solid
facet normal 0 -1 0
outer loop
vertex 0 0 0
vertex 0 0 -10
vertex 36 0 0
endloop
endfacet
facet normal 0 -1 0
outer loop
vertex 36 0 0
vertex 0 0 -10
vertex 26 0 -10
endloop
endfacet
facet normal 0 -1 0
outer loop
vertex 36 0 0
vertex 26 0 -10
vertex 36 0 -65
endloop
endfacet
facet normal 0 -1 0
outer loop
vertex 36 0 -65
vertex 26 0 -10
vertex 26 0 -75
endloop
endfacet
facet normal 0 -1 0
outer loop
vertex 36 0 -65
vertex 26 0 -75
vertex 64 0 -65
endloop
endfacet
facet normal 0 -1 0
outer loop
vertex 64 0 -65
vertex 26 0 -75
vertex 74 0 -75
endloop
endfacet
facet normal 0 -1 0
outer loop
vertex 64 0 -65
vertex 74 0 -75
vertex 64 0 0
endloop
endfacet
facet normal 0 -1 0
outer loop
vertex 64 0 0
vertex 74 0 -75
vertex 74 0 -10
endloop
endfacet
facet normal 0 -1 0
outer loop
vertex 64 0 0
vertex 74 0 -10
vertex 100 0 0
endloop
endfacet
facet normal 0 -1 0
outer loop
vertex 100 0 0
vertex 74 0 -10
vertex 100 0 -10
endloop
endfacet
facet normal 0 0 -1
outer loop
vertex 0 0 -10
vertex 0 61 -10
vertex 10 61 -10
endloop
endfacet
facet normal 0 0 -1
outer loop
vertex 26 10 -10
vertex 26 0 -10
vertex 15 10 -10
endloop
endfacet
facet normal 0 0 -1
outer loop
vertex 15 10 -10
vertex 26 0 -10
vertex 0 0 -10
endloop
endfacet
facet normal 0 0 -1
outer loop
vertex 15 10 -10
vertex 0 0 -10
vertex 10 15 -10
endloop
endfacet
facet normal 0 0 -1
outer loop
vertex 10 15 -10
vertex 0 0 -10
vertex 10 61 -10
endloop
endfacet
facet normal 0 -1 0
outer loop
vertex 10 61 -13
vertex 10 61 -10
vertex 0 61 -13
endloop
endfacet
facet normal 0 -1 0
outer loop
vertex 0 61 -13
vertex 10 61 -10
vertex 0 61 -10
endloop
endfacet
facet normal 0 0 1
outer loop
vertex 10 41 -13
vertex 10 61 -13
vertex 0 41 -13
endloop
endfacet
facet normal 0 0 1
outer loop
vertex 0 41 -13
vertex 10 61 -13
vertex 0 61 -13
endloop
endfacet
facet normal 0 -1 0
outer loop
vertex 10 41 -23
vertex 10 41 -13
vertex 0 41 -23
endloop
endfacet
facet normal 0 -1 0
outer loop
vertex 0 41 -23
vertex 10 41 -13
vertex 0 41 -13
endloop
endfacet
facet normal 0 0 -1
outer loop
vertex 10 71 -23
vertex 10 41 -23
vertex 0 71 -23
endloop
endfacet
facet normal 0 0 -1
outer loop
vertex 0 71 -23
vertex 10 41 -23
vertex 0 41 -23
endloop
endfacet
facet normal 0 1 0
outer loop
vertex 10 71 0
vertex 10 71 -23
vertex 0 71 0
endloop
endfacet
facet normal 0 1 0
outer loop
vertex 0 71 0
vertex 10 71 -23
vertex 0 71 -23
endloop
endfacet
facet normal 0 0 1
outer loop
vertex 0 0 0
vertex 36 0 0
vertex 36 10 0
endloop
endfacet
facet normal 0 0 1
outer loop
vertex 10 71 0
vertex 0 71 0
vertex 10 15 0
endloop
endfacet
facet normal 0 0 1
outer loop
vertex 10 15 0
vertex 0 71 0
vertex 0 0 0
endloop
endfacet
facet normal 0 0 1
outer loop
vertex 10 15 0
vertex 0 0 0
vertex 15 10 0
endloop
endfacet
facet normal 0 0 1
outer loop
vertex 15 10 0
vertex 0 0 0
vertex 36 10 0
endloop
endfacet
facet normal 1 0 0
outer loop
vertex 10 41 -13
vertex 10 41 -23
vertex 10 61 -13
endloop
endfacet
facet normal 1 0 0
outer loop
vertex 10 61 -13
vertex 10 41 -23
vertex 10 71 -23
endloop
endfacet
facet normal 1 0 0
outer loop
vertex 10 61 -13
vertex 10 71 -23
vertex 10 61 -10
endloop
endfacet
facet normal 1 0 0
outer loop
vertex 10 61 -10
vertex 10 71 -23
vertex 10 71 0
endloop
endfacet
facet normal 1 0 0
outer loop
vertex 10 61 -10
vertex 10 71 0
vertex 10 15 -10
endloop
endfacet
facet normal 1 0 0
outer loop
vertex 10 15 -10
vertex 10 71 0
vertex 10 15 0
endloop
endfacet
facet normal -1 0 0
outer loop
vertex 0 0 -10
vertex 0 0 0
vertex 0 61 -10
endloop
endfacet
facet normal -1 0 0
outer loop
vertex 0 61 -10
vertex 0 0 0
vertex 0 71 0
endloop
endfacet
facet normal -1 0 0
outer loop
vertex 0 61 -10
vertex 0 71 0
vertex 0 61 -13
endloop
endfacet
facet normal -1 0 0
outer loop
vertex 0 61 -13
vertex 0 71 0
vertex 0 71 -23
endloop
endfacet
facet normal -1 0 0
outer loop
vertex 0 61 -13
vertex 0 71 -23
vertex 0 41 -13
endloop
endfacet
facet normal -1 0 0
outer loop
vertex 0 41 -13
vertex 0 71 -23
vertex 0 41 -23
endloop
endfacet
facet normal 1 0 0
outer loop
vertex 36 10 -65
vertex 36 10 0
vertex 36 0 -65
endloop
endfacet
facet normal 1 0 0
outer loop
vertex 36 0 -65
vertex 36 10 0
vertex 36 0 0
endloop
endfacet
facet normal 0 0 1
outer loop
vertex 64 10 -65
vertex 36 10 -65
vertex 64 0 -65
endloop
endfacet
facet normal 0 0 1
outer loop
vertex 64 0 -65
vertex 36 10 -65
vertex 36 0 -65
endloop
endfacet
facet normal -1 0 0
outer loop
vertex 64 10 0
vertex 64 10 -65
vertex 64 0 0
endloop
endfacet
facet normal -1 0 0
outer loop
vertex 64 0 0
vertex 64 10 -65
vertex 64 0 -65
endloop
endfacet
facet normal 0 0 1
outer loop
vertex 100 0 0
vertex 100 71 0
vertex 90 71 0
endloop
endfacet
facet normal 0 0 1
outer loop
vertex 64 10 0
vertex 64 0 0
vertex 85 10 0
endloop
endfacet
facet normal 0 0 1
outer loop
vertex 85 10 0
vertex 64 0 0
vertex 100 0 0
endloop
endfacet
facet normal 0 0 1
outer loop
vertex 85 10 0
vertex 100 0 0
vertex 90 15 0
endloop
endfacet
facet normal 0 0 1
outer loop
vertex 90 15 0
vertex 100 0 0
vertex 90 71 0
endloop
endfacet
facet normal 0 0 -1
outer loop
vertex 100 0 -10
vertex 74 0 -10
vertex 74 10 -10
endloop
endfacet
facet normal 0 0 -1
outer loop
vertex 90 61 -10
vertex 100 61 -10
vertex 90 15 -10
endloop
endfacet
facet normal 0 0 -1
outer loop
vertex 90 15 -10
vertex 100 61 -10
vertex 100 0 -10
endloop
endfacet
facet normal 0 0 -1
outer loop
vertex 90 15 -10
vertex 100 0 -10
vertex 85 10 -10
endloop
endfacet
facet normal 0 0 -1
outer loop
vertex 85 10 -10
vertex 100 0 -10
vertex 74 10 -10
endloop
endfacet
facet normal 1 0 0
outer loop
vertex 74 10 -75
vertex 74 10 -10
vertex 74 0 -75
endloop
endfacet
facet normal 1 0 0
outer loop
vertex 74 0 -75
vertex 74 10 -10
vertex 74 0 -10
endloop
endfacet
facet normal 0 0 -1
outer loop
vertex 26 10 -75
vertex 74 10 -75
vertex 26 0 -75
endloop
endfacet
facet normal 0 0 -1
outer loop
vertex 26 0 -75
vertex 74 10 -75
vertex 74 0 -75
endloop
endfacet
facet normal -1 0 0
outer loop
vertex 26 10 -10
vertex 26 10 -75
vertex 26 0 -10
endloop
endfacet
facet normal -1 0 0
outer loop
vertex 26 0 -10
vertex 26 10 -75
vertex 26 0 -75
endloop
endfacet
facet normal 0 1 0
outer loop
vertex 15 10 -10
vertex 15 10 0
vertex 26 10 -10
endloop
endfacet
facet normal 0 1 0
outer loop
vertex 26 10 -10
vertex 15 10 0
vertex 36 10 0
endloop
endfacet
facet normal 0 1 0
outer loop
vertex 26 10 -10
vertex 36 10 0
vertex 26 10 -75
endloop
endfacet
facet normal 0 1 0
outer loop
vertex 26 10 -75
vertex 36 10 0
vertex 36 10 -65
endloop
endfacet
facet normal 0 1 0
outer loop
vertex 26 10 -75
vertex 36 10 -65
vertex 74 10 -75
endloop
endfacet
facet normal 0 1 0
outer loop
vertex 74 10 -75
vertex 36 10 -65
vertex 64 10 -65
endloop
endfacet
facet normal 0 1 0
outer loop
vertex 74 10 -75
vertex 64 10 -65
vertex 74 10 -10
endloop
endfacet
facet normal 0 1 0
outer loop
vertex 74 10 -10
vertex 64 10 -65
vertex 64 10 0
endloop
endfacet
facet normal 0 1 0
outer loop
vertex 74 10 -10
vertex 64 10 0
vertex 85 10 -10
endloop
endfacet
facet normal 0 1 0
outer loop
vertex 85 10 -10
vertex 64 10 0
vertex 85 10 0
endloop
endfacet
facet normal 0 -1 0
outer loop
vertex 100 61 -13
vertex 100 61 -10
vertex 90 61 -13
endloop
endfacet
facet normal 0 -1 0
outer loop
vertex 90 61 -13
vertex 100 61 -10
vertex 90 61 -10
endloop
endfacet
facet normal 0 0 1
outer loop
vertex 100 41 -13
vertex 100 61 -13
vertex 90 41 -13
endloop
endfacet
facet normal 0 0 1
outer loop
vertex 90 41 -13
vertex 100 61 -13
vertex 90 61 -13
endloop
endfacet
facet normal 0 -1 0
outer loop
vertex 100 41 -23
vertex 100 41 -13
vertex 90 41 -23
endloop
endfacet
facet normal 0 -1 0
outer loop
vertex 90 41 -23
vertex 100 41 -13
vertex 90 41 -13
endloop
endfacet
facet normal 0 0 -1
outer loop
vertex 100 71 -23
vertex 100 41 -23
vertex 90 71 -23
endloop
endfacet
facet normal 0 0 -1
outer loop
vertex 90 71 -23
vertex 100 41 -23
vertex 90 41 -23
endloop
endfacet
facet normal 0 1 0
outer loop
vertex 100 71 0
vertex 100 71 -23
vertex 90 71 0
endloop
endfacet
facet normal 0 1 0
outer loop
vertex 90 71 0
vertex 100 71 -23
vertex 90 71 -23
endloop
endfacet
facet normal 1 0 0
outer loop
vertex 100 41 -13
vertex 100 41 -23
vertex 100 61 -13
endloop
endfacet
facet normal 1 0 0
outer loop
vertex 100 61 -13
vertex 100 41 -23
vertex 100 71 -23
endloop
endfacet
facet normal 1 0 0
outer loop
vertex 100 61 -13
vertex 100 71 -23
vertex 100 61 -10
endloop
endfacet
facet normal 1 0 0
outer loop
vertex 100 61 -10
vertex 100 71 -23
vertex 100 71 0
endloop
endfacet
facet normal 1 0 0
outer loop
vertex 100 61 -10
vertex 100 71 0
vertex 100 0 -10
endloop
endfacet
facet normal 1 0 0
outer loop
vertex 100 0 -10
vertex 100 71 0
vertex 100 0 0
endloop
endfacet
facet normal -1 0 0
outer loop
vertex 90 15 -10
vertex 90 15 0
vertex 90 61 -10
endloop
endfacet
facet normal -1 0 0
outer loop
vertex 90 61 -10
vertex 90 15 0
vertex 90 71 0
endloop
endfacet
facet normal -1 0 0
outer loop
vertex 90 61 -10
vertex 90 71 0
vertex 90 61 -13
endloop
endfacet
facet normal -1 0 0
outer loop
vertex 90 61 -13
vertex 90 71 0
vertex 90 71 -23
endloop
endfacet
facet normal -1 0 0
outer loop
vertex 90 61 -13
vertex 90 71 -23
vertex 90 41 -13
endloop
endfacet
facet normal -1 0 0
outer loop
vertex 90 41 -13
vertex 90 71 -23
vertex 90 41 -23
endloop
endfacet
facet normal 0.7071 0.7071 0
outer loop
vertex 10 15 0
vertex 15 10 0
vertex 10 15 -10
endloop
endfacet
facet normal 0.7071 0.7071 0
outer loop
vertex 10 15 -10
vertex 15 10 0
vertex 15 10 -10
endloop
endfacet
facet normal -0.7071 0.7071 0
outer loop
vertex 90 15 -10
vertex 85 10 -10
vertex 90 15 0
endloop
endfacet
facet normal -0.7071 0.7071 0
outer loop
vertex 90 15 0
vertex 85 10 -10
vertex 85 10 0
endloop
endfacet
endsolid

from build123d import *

# Parameters (mm, degrees)
BOSS_EXTRUDE1_DEPTH = 10
BOSS_EXTRUDE2_DEPTH = 10
BOSS_EXTRUDE3_DEPTH = 10
FILLET1_SIZE        = 5


with BuildPart() as part:
    # Sketch1 → Boss-Extrude1 (new body)
    with BuildSketch(Plane(origin=(0, 0, 0), x_dir=(0, 0, -1), z_dir=(1, 0, 0))):
        Polygon((0, 0), (0, 71), (23, 71), (23, 41), (13, 41), (13, 61), (10, 61), (10, 0), align=None)
    extrude(amount=BOSS_EXTRUDE1_DEPTH)

    # Sketch2 → Boss-Extrude2 (add)
    with BuildSketch(Plane(origin=(0, 0, 0), x_dir=(1, 0, 0), z_dir=(0, 1, 0))):
        Polygon((10, 0), (36, 0), (36, 65), (50, 65), (64, 65), (64, 0), (90, 0), (90, 10), (74, 10), (74, 75), (50, 75), (26, 75), (26, 10), (10, 10), align=None)
    extrude(amount=BOSS_EXTRUDE2_DEPTH)

    # Sketch3 → Boss-Extrude3 (add)
    with BuildSketch(Plane(origin=(90, 0, 0), x_dir=(0, 0, -1), z_dir=(1, 0, 0))):
        Polygon((0, 71), (0, 0), (10, 0), (10, 61), (13, 61), (13, 41), (23, 41), (23, 71), align=None)
    extrude(amount=BOSS_EXTRUDE3_DEPTH)

    # Fillet1
    fillet1_edges = [part.edges().sort_by_distance(p)[0] for p in [
        (10, 10, -5),
        (90, 10, -5),
    ]]
    chamfer(fillet1_edges, length=FILLET1_SIZE)


solid = part.part
